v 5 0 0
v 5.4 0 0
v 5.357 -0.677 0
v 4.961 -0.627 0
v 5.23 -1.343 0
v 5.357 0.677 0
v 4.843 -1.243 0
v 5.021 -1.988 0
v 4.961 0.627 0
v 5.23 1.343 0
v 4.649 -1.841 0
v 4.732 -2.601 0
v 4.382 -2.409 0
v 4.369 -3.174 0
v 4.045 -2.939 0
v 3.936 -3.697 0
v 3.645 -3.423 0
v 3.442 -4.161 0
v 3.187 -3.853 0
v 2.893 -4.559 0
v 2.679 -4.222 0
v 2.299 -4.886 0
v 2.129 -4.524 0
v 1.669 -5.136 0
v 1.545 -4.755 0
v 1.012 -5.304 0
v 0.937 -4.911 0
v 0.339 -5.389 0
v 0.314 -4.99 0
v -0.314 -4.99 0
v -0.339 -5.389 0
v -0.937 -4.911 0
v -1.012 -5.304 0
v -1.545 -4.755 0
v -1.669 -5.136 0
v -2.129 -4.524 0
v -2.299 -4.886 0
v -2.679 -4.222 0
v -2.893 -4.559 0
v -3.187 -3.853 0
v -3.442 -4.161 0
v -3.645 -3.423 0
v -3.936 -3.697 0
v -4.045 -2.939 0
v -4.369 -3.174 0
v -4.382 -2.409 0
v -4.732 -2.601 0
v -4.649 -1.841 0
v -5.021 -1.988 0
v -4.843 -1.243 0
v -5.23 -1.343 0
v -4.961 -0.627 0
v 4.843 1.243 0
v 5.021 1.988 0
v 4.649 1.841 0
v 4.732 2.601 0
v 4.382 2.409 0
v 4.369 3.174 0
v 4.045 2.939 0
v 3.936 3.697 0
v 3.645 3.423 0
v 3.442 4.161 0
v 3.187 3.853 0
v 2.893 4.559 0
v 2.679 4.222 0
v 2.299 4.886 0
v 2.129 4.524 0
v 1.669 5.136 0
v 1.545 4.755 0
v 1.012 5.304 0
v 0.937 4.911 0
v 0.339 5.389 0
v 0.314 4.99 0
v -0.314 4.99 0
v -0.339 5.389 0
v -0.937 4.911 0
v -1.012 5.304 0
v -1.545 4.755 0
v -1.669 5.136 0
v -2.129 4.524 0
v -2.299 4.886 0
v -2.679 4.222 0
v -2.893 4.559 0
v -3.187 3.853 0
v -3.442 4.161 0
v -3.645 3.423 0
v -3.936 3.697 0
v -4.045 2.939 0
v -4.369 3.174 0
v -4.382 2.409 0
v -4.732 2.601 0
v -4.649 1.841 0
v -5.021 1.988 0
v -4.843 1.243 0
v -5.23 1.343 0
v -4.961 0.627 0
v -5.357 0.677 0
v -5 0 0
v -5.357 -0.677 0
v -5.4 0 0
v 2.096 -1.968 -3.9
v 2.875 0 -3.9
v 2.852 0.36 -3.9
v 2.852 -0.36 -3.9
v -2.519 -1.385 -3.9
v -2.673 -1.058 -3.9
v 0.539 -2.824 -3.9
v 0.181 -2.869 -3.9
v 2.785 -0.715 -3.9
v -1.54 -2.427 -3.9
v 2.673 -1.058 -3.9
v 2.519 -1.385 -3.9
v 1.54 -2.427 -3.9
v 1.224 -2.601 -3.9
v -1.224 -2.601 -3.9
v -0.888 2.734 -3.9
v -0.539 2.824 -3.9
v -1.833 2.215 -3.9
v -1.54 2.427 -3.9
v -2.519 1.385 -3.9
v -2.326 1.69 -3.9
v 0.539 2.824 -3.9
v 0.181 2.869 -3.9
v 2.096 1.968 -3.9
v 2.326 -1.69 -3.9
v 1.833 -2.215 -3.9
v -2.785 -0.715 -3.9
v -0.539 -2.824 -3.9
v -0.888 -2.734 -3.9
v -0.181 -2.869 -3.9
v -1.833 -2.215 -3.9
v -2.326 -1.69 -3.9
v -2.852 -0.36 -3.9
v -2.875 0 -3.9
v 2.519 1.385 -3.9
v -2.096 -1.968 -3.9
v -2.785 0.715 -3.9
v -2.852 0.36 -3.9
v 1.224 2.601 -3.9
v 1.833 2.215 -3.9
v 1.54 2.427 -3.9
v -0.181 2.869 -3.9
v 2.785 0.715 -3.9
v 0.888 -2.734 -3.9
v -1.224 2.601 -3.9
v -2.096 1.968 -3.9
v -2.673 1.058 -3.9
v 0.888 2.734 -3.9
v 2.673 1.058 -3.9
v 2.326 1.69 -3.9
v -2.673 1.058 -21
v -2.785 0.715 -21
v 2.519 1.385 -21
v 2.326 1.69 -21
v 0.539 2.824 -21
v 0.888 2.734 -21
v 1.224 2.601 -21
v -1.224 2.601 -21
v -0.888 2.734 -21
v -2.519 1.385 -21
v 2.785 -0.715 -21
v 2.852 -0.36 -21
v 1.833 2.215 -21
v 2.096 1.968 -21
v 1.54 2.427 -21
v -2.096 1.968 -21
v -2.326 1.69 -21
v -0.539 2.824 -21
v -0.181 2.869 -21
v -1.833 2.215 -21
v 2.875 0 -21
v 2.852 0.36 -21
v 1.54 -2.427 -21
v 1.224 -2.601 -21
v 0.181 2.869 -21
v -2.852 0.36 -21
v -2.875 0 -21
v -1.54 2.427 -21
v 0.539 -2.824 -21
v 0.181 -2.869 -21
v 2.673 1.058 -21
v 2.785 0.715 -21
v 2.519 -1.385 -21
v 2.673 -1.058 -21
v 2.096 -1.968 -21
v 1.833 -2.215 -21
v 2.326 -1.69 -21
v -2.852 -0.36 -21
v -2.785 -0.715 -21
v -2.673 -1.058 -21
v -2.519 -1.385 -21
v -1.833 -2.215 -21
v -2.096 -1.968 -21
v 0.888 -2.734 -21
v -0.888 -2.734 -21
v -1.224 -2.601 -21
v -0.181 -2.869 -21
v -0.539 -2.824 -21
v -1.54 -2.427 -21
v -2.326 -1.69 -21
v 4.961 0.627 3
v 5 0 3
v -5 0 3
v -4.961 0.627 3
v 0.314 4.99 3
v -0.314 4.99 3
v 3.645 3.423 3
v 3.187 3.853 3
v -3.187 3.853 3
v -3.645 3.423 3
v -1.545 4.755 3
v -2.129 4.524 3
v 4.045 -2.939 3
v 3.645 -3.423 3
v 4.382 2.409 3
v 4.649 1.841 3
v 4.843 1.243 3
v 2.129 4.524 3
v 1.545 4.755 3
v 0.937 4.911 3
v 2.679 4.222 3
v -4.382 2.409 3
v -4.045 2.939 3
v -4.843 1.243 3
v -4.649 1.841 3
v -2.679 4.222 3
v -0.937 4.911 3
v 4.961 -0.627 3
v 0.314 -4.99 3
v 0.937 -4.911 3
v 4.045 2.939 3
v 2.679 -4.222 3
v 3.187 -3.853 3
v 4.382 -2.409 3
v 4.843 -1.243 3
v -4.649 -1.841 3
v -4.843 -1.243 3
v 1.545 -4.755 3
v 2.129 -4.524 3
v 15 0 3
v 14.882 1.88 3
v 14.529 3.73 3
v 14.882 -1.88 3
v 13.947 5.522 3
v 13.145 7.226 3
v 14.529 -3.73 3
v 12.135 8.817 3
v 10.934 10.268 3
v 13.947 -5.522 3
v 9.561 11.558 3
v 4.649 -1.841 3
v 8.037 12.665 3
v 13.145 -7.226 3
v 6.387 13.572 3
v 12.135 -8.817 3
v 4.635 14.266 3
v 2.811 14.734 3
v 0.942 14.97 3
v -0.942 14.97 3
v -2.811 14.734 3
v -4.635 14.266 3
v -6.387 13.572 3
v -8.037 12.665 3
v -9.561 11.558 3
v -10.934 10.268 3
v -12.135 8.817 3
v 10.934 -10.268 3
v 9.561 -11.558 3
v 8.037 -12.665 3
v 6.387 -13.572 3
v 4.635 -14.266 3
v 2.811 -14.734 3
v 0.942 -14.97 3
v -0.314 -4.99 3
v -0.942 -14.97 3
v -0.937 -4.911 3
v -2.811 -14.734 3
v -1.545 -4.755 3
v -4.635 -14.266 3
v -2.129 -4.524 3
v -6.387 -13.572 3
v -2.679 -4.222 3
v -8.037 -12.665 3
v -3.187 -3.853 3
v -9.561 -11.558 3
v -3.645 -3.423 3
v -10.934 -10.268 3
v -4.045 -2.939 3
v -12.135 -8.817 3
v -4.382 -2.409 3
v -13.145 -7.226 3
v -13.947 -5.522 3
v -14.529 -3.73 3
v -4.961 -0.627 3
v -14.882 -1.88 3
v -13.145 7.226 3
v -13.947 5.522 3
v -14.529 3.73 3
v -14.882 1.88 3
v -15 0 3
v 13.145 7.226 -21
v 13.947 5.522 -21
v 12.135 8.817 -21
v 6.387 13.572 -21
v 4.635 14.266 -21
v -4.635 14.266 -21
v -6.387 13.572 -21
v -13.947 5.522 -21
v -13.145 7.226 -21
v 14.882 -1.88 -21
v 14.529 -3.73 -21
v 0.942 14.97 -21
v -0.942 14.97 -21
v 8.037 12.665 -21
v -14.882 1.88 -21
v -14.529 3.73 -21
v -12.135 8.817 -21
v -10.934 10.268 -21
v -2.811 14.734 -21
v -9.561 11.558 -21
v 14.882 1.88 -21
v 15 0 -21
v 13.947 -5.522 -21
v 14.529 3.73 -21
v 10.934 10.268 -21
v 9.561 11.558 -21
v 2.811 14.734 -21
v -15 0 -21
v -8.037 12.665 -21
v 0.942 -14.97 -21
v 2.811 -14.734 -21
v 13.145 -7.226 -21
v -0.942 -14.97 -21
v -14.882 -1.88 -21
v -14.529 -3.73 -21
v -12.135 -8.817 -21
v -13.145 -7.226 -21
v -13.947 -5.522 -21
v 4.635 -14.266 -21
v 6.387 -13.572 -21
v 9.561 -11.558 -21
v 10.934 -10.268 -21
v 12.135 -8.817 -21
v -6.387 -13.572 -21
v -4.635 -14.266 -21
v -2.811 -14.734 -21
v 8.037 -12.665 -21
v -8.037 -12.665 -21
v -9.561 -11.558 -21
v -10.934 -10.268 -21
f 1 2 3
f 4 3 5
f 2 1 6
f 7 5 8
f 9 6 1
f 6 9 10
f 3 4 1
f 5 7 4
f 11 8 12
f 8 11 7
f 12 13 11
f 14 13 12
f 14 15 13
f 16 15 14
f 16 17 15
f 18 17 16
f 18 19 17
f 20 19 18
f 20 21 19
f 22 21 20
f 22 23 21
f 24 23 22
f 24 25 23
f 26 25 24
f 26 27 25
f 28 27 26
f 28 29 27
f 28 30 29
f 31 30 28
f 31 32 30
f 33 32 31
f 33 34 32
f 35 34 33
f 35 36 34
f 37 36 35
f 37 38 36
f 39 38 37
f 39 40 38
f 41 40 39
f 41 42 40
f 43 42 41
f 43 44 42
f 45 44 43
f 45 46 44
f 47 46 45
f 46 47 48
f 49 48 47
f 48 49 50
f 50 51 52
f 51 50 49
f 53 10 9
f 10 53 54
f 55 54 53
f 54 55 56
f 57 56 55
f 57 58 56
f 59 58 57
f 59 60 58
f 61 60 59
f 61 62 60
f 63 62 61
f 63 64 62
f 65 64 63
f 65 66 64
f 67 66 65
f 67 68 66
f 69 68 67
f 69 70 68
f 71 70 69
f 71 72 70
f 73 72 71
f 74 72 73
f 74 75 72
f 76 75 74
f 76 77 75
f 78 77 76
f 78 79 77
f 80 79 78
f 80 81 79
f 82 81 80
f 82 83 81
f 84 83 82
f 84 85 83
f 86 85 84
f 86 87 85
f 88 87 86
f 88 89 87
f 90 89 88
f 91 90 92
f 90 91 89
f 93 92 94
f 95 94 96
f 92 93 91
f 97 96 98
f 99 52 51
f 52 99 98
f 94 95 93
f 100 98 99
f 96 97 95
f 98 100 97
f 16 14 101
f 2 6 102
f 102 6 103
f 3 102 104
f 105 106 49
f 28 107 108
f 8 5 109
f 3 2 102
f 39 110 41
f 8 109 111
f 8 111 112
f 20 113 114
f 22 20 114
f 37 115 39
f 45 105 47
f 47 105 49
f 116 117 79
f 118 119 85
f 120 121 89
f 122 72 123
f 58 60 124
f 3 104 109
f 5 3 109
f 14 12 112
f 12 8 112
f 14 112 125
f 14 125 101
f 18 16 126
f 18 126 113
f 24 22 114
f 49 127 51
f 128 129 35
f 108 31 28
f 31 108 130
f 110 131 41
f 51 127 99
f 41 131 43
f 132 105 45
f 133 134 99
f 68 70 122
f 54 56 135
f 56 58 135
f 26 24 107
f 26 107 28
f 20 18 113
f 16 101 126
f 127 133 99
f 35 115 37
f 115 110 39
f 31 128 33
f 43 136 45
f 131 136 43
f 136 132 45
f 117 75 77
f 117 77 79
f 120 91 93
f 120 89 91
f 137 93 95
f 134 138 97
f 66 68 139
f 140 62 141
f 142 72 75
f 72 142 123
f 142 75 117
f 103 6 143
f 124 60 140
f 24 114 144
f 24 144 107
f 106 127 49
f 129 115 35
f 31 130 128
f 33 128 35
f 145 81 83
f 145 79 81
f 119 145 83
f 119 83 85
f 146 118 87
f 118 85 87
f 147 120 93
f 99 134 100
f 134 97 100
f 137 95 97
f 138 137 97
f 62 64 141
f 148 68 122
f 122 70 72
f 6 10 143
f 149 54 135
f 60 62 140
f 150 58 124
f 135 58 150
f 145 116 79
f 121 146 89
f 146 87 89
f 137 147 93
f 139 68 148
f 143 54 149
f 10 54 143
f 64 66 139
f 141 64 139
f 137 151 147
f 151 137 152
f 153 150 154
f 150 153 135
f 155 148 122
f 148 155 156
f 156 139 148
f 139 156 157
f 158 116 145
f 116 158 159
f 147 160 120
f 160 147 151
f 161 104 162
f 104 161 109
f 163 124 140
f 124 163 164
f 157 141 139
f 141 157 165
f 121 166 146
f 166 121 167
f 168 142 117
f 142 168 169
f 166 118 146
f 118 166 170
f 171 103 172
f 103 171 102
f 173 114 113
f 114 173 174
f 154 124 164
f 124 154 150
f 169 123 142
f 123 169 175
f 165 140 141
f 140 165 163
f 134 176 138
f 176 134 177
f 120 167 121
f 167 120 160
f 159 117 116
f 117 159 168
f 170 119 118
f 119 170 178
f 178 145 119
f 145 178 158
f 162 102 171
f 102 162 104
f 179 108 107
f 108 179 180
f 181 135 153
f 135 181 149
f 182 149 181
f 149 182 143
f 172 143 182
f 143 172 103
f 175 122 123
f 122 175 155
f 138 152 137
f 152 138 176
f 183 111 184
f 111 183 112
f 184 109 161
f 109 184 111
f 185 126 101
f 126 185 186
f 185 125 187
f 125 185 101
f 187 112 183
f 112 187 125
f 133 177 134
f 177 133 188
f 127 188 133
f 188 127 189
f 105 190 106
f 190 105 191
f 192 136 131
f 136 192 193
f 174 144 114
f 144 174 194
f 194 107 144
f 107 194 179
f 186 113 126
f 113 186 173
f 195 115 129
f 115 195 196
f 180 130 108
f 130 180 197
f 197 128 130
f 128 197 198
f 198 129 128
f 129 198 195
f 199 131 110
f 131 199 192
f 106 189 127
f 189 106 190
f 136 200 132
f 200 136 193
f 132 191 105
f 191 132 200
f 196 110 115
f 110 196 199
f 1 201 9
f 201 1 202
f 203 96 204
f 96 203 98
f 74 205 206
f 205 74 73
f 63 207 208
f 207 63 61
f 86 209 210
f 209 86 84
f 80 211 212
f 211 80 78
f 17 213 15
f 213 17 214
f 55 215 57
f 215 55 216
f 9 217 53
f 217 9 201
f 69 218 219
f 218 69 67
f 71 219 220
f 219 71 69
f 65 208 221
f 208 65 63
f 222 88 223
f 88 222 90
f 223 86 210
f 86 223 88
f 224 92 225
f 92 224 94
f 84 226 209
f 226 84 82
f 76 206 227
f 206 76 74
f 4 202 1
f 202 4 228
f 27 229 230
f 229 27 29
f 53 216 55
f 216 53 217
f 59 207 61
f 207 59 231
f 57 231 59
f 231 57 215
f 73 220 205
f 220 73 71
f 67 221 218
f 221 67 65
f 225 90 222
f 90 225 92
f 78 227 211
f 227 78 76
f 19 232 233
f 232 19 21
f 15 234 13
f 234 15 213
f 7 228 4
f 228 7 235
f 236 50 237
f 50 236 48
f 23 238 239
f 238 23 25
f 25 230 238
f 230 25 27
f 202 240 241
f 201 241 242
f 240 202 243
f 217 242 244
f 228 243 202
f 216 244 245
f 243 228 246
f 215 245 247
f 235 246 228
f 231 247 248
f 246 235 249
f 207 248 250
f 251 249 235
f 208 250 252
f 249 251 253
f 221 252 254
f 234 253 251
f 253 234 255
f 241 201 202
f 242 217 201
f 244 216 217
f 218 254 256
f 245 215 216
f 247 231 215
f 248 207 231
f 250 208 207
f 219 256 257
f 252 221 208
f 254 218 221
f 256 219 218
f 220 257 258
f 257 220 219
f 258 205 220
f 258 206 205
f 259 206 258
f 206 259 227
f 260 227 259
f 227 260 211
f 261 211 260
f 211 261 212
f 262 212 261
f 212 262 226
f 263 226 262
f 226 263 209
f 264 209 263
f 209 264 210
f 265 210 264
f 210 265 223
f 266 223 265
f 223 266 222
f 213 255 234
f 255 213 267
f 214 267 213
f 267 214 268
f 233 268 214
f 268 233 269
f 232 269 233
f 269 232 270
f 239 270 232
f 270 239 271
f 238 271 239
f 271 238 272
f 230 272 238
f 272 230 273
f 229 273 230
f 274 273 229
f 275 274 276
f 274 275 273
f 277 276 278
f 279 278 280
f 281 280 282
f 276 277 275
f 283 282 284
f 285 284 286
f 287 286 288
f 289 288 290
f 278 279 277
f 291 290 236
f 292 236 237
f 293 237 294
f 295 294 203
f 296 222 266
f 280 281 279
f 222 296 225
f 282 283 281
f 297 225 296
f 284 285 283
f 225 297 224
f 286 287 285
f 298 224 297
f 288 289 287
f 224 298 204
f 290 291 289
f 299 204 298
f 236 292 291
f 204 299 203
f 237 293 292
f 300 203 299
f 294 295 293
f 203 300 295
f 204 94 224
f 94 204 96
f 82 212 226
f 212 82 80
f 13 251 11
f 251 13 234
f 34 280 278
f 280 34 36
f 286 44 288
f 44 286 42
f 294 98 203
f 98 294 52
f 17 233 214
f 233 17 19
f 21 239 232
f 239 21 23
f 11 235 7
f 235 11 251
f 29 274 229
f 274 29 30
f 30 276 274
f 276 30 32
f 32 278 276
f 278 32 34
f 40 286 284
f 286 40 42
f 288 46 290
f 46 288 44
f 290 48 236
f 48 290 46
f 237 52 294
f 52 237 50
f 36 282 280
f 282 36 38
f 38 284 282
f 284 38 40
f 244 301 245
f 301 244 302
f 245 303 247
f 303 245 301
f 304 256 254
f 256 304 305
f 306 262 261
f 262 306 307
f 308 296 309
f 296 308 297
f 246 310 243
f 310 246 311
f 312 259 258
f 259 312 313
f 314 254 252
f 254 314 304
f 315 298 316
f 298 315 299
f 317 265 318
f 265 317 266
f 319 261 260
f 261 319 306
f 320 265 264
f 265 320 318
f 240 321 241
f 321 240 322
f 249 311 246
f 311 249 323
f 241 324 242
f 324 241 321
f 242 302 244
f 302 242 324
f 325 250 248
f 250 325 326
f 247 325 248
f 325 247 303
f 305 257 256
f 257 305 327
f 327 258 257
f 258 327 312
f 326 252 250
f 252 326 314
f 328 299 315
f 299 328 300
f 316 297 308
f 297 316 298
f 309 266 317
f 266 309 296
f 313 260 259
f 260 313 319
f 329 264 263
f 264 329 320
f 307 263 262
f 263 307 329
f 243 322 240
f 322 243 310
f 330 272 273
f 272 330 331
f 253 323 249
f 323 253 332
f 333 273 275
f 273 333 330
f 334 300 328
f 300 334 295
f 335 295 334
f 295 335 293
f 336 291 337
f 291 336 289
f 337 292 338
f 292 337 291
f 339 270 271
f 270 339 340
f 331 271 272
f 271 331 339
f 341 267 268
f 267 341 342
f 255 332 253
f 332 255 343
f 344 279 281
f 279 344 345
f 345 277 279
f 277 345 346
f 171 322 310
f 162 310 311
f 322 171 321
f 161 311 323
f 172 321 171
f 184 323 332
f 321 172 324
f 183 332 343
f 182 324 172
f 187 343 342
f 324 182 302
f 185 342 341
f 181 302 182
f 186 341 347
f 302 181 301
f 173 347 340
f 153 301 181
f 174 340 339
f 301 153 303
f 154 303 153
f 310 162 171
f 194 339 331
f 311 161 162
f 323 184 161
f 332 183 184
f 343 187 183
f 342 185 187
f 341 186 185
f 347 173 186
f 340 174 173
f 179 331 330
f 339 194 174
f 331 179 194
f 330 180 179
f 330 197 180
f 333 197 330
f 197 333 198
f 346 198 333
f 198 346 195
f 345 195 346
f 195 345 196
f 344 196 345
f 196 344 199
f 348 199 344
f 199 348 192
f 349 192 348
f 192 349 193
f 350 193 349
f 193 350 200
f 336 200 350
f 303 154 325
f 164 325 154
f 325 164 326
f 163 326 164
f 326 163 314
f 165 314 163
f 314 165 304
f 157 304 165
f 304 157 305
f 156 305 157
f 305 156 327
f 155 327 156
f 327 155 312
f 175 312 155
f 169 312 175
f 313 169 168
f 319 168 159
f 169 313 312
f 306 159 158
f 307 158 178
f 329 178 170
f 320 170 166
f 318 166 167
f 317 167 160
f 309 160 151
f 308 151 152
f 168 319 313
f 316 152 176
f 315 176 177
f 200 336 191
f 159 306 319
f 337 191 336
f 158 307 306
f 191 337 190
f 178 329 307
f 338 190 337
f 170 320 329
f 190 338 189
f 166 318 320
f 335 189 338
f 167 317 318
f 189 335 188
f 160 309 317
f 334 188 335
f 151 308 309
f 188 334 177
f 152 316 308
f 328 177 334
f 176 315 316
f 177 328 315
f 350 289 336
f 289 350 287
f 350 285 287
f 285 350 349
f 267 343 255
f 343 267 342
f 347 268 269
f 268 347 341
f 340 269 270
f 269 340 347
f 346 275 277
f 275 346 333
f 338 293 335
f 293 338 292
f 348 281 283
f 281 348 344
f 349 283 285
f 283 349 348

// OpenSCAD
$fn = 50;


difference() {
	union() {
		translate(v = [0, 0, -21.0000000000]) {
			cylinder(h = 24, r = 15.0000000000);
		}
		#translate(v = [0, 0, -24.0000000000]) {
			cylinder(h = 24, r = 2.8750000000);
		}
	}
	union() {
		translate(v = [0, 0, 0]) {
			rotate(a = [0, 0, 0]) {
				difference() {
					union() {
						translate(v = [0, 0, -24.0000000000]) {
							cylinder(h = 24, r = 2.6000000000);
						}
						translate(v = [0, 0, -3.9000000000]) {
							cylinder(h = 3.9000000000, r1 = 2.8750000000, r2 = 5.4000000000);
						}
						translate(v = [0, 0, -24.0000000000]) {
							cylinder(h = 24, r = 2.8750000000);
						}
						translate(v = [0, 0, -24.0000000000]) {
							cylinder(h = 24, r = 2.6000000000);
						}
					}
					union();
				}
			}
		}
		#cylinder(h = 3, r = 5.0000000000);
	}
}
